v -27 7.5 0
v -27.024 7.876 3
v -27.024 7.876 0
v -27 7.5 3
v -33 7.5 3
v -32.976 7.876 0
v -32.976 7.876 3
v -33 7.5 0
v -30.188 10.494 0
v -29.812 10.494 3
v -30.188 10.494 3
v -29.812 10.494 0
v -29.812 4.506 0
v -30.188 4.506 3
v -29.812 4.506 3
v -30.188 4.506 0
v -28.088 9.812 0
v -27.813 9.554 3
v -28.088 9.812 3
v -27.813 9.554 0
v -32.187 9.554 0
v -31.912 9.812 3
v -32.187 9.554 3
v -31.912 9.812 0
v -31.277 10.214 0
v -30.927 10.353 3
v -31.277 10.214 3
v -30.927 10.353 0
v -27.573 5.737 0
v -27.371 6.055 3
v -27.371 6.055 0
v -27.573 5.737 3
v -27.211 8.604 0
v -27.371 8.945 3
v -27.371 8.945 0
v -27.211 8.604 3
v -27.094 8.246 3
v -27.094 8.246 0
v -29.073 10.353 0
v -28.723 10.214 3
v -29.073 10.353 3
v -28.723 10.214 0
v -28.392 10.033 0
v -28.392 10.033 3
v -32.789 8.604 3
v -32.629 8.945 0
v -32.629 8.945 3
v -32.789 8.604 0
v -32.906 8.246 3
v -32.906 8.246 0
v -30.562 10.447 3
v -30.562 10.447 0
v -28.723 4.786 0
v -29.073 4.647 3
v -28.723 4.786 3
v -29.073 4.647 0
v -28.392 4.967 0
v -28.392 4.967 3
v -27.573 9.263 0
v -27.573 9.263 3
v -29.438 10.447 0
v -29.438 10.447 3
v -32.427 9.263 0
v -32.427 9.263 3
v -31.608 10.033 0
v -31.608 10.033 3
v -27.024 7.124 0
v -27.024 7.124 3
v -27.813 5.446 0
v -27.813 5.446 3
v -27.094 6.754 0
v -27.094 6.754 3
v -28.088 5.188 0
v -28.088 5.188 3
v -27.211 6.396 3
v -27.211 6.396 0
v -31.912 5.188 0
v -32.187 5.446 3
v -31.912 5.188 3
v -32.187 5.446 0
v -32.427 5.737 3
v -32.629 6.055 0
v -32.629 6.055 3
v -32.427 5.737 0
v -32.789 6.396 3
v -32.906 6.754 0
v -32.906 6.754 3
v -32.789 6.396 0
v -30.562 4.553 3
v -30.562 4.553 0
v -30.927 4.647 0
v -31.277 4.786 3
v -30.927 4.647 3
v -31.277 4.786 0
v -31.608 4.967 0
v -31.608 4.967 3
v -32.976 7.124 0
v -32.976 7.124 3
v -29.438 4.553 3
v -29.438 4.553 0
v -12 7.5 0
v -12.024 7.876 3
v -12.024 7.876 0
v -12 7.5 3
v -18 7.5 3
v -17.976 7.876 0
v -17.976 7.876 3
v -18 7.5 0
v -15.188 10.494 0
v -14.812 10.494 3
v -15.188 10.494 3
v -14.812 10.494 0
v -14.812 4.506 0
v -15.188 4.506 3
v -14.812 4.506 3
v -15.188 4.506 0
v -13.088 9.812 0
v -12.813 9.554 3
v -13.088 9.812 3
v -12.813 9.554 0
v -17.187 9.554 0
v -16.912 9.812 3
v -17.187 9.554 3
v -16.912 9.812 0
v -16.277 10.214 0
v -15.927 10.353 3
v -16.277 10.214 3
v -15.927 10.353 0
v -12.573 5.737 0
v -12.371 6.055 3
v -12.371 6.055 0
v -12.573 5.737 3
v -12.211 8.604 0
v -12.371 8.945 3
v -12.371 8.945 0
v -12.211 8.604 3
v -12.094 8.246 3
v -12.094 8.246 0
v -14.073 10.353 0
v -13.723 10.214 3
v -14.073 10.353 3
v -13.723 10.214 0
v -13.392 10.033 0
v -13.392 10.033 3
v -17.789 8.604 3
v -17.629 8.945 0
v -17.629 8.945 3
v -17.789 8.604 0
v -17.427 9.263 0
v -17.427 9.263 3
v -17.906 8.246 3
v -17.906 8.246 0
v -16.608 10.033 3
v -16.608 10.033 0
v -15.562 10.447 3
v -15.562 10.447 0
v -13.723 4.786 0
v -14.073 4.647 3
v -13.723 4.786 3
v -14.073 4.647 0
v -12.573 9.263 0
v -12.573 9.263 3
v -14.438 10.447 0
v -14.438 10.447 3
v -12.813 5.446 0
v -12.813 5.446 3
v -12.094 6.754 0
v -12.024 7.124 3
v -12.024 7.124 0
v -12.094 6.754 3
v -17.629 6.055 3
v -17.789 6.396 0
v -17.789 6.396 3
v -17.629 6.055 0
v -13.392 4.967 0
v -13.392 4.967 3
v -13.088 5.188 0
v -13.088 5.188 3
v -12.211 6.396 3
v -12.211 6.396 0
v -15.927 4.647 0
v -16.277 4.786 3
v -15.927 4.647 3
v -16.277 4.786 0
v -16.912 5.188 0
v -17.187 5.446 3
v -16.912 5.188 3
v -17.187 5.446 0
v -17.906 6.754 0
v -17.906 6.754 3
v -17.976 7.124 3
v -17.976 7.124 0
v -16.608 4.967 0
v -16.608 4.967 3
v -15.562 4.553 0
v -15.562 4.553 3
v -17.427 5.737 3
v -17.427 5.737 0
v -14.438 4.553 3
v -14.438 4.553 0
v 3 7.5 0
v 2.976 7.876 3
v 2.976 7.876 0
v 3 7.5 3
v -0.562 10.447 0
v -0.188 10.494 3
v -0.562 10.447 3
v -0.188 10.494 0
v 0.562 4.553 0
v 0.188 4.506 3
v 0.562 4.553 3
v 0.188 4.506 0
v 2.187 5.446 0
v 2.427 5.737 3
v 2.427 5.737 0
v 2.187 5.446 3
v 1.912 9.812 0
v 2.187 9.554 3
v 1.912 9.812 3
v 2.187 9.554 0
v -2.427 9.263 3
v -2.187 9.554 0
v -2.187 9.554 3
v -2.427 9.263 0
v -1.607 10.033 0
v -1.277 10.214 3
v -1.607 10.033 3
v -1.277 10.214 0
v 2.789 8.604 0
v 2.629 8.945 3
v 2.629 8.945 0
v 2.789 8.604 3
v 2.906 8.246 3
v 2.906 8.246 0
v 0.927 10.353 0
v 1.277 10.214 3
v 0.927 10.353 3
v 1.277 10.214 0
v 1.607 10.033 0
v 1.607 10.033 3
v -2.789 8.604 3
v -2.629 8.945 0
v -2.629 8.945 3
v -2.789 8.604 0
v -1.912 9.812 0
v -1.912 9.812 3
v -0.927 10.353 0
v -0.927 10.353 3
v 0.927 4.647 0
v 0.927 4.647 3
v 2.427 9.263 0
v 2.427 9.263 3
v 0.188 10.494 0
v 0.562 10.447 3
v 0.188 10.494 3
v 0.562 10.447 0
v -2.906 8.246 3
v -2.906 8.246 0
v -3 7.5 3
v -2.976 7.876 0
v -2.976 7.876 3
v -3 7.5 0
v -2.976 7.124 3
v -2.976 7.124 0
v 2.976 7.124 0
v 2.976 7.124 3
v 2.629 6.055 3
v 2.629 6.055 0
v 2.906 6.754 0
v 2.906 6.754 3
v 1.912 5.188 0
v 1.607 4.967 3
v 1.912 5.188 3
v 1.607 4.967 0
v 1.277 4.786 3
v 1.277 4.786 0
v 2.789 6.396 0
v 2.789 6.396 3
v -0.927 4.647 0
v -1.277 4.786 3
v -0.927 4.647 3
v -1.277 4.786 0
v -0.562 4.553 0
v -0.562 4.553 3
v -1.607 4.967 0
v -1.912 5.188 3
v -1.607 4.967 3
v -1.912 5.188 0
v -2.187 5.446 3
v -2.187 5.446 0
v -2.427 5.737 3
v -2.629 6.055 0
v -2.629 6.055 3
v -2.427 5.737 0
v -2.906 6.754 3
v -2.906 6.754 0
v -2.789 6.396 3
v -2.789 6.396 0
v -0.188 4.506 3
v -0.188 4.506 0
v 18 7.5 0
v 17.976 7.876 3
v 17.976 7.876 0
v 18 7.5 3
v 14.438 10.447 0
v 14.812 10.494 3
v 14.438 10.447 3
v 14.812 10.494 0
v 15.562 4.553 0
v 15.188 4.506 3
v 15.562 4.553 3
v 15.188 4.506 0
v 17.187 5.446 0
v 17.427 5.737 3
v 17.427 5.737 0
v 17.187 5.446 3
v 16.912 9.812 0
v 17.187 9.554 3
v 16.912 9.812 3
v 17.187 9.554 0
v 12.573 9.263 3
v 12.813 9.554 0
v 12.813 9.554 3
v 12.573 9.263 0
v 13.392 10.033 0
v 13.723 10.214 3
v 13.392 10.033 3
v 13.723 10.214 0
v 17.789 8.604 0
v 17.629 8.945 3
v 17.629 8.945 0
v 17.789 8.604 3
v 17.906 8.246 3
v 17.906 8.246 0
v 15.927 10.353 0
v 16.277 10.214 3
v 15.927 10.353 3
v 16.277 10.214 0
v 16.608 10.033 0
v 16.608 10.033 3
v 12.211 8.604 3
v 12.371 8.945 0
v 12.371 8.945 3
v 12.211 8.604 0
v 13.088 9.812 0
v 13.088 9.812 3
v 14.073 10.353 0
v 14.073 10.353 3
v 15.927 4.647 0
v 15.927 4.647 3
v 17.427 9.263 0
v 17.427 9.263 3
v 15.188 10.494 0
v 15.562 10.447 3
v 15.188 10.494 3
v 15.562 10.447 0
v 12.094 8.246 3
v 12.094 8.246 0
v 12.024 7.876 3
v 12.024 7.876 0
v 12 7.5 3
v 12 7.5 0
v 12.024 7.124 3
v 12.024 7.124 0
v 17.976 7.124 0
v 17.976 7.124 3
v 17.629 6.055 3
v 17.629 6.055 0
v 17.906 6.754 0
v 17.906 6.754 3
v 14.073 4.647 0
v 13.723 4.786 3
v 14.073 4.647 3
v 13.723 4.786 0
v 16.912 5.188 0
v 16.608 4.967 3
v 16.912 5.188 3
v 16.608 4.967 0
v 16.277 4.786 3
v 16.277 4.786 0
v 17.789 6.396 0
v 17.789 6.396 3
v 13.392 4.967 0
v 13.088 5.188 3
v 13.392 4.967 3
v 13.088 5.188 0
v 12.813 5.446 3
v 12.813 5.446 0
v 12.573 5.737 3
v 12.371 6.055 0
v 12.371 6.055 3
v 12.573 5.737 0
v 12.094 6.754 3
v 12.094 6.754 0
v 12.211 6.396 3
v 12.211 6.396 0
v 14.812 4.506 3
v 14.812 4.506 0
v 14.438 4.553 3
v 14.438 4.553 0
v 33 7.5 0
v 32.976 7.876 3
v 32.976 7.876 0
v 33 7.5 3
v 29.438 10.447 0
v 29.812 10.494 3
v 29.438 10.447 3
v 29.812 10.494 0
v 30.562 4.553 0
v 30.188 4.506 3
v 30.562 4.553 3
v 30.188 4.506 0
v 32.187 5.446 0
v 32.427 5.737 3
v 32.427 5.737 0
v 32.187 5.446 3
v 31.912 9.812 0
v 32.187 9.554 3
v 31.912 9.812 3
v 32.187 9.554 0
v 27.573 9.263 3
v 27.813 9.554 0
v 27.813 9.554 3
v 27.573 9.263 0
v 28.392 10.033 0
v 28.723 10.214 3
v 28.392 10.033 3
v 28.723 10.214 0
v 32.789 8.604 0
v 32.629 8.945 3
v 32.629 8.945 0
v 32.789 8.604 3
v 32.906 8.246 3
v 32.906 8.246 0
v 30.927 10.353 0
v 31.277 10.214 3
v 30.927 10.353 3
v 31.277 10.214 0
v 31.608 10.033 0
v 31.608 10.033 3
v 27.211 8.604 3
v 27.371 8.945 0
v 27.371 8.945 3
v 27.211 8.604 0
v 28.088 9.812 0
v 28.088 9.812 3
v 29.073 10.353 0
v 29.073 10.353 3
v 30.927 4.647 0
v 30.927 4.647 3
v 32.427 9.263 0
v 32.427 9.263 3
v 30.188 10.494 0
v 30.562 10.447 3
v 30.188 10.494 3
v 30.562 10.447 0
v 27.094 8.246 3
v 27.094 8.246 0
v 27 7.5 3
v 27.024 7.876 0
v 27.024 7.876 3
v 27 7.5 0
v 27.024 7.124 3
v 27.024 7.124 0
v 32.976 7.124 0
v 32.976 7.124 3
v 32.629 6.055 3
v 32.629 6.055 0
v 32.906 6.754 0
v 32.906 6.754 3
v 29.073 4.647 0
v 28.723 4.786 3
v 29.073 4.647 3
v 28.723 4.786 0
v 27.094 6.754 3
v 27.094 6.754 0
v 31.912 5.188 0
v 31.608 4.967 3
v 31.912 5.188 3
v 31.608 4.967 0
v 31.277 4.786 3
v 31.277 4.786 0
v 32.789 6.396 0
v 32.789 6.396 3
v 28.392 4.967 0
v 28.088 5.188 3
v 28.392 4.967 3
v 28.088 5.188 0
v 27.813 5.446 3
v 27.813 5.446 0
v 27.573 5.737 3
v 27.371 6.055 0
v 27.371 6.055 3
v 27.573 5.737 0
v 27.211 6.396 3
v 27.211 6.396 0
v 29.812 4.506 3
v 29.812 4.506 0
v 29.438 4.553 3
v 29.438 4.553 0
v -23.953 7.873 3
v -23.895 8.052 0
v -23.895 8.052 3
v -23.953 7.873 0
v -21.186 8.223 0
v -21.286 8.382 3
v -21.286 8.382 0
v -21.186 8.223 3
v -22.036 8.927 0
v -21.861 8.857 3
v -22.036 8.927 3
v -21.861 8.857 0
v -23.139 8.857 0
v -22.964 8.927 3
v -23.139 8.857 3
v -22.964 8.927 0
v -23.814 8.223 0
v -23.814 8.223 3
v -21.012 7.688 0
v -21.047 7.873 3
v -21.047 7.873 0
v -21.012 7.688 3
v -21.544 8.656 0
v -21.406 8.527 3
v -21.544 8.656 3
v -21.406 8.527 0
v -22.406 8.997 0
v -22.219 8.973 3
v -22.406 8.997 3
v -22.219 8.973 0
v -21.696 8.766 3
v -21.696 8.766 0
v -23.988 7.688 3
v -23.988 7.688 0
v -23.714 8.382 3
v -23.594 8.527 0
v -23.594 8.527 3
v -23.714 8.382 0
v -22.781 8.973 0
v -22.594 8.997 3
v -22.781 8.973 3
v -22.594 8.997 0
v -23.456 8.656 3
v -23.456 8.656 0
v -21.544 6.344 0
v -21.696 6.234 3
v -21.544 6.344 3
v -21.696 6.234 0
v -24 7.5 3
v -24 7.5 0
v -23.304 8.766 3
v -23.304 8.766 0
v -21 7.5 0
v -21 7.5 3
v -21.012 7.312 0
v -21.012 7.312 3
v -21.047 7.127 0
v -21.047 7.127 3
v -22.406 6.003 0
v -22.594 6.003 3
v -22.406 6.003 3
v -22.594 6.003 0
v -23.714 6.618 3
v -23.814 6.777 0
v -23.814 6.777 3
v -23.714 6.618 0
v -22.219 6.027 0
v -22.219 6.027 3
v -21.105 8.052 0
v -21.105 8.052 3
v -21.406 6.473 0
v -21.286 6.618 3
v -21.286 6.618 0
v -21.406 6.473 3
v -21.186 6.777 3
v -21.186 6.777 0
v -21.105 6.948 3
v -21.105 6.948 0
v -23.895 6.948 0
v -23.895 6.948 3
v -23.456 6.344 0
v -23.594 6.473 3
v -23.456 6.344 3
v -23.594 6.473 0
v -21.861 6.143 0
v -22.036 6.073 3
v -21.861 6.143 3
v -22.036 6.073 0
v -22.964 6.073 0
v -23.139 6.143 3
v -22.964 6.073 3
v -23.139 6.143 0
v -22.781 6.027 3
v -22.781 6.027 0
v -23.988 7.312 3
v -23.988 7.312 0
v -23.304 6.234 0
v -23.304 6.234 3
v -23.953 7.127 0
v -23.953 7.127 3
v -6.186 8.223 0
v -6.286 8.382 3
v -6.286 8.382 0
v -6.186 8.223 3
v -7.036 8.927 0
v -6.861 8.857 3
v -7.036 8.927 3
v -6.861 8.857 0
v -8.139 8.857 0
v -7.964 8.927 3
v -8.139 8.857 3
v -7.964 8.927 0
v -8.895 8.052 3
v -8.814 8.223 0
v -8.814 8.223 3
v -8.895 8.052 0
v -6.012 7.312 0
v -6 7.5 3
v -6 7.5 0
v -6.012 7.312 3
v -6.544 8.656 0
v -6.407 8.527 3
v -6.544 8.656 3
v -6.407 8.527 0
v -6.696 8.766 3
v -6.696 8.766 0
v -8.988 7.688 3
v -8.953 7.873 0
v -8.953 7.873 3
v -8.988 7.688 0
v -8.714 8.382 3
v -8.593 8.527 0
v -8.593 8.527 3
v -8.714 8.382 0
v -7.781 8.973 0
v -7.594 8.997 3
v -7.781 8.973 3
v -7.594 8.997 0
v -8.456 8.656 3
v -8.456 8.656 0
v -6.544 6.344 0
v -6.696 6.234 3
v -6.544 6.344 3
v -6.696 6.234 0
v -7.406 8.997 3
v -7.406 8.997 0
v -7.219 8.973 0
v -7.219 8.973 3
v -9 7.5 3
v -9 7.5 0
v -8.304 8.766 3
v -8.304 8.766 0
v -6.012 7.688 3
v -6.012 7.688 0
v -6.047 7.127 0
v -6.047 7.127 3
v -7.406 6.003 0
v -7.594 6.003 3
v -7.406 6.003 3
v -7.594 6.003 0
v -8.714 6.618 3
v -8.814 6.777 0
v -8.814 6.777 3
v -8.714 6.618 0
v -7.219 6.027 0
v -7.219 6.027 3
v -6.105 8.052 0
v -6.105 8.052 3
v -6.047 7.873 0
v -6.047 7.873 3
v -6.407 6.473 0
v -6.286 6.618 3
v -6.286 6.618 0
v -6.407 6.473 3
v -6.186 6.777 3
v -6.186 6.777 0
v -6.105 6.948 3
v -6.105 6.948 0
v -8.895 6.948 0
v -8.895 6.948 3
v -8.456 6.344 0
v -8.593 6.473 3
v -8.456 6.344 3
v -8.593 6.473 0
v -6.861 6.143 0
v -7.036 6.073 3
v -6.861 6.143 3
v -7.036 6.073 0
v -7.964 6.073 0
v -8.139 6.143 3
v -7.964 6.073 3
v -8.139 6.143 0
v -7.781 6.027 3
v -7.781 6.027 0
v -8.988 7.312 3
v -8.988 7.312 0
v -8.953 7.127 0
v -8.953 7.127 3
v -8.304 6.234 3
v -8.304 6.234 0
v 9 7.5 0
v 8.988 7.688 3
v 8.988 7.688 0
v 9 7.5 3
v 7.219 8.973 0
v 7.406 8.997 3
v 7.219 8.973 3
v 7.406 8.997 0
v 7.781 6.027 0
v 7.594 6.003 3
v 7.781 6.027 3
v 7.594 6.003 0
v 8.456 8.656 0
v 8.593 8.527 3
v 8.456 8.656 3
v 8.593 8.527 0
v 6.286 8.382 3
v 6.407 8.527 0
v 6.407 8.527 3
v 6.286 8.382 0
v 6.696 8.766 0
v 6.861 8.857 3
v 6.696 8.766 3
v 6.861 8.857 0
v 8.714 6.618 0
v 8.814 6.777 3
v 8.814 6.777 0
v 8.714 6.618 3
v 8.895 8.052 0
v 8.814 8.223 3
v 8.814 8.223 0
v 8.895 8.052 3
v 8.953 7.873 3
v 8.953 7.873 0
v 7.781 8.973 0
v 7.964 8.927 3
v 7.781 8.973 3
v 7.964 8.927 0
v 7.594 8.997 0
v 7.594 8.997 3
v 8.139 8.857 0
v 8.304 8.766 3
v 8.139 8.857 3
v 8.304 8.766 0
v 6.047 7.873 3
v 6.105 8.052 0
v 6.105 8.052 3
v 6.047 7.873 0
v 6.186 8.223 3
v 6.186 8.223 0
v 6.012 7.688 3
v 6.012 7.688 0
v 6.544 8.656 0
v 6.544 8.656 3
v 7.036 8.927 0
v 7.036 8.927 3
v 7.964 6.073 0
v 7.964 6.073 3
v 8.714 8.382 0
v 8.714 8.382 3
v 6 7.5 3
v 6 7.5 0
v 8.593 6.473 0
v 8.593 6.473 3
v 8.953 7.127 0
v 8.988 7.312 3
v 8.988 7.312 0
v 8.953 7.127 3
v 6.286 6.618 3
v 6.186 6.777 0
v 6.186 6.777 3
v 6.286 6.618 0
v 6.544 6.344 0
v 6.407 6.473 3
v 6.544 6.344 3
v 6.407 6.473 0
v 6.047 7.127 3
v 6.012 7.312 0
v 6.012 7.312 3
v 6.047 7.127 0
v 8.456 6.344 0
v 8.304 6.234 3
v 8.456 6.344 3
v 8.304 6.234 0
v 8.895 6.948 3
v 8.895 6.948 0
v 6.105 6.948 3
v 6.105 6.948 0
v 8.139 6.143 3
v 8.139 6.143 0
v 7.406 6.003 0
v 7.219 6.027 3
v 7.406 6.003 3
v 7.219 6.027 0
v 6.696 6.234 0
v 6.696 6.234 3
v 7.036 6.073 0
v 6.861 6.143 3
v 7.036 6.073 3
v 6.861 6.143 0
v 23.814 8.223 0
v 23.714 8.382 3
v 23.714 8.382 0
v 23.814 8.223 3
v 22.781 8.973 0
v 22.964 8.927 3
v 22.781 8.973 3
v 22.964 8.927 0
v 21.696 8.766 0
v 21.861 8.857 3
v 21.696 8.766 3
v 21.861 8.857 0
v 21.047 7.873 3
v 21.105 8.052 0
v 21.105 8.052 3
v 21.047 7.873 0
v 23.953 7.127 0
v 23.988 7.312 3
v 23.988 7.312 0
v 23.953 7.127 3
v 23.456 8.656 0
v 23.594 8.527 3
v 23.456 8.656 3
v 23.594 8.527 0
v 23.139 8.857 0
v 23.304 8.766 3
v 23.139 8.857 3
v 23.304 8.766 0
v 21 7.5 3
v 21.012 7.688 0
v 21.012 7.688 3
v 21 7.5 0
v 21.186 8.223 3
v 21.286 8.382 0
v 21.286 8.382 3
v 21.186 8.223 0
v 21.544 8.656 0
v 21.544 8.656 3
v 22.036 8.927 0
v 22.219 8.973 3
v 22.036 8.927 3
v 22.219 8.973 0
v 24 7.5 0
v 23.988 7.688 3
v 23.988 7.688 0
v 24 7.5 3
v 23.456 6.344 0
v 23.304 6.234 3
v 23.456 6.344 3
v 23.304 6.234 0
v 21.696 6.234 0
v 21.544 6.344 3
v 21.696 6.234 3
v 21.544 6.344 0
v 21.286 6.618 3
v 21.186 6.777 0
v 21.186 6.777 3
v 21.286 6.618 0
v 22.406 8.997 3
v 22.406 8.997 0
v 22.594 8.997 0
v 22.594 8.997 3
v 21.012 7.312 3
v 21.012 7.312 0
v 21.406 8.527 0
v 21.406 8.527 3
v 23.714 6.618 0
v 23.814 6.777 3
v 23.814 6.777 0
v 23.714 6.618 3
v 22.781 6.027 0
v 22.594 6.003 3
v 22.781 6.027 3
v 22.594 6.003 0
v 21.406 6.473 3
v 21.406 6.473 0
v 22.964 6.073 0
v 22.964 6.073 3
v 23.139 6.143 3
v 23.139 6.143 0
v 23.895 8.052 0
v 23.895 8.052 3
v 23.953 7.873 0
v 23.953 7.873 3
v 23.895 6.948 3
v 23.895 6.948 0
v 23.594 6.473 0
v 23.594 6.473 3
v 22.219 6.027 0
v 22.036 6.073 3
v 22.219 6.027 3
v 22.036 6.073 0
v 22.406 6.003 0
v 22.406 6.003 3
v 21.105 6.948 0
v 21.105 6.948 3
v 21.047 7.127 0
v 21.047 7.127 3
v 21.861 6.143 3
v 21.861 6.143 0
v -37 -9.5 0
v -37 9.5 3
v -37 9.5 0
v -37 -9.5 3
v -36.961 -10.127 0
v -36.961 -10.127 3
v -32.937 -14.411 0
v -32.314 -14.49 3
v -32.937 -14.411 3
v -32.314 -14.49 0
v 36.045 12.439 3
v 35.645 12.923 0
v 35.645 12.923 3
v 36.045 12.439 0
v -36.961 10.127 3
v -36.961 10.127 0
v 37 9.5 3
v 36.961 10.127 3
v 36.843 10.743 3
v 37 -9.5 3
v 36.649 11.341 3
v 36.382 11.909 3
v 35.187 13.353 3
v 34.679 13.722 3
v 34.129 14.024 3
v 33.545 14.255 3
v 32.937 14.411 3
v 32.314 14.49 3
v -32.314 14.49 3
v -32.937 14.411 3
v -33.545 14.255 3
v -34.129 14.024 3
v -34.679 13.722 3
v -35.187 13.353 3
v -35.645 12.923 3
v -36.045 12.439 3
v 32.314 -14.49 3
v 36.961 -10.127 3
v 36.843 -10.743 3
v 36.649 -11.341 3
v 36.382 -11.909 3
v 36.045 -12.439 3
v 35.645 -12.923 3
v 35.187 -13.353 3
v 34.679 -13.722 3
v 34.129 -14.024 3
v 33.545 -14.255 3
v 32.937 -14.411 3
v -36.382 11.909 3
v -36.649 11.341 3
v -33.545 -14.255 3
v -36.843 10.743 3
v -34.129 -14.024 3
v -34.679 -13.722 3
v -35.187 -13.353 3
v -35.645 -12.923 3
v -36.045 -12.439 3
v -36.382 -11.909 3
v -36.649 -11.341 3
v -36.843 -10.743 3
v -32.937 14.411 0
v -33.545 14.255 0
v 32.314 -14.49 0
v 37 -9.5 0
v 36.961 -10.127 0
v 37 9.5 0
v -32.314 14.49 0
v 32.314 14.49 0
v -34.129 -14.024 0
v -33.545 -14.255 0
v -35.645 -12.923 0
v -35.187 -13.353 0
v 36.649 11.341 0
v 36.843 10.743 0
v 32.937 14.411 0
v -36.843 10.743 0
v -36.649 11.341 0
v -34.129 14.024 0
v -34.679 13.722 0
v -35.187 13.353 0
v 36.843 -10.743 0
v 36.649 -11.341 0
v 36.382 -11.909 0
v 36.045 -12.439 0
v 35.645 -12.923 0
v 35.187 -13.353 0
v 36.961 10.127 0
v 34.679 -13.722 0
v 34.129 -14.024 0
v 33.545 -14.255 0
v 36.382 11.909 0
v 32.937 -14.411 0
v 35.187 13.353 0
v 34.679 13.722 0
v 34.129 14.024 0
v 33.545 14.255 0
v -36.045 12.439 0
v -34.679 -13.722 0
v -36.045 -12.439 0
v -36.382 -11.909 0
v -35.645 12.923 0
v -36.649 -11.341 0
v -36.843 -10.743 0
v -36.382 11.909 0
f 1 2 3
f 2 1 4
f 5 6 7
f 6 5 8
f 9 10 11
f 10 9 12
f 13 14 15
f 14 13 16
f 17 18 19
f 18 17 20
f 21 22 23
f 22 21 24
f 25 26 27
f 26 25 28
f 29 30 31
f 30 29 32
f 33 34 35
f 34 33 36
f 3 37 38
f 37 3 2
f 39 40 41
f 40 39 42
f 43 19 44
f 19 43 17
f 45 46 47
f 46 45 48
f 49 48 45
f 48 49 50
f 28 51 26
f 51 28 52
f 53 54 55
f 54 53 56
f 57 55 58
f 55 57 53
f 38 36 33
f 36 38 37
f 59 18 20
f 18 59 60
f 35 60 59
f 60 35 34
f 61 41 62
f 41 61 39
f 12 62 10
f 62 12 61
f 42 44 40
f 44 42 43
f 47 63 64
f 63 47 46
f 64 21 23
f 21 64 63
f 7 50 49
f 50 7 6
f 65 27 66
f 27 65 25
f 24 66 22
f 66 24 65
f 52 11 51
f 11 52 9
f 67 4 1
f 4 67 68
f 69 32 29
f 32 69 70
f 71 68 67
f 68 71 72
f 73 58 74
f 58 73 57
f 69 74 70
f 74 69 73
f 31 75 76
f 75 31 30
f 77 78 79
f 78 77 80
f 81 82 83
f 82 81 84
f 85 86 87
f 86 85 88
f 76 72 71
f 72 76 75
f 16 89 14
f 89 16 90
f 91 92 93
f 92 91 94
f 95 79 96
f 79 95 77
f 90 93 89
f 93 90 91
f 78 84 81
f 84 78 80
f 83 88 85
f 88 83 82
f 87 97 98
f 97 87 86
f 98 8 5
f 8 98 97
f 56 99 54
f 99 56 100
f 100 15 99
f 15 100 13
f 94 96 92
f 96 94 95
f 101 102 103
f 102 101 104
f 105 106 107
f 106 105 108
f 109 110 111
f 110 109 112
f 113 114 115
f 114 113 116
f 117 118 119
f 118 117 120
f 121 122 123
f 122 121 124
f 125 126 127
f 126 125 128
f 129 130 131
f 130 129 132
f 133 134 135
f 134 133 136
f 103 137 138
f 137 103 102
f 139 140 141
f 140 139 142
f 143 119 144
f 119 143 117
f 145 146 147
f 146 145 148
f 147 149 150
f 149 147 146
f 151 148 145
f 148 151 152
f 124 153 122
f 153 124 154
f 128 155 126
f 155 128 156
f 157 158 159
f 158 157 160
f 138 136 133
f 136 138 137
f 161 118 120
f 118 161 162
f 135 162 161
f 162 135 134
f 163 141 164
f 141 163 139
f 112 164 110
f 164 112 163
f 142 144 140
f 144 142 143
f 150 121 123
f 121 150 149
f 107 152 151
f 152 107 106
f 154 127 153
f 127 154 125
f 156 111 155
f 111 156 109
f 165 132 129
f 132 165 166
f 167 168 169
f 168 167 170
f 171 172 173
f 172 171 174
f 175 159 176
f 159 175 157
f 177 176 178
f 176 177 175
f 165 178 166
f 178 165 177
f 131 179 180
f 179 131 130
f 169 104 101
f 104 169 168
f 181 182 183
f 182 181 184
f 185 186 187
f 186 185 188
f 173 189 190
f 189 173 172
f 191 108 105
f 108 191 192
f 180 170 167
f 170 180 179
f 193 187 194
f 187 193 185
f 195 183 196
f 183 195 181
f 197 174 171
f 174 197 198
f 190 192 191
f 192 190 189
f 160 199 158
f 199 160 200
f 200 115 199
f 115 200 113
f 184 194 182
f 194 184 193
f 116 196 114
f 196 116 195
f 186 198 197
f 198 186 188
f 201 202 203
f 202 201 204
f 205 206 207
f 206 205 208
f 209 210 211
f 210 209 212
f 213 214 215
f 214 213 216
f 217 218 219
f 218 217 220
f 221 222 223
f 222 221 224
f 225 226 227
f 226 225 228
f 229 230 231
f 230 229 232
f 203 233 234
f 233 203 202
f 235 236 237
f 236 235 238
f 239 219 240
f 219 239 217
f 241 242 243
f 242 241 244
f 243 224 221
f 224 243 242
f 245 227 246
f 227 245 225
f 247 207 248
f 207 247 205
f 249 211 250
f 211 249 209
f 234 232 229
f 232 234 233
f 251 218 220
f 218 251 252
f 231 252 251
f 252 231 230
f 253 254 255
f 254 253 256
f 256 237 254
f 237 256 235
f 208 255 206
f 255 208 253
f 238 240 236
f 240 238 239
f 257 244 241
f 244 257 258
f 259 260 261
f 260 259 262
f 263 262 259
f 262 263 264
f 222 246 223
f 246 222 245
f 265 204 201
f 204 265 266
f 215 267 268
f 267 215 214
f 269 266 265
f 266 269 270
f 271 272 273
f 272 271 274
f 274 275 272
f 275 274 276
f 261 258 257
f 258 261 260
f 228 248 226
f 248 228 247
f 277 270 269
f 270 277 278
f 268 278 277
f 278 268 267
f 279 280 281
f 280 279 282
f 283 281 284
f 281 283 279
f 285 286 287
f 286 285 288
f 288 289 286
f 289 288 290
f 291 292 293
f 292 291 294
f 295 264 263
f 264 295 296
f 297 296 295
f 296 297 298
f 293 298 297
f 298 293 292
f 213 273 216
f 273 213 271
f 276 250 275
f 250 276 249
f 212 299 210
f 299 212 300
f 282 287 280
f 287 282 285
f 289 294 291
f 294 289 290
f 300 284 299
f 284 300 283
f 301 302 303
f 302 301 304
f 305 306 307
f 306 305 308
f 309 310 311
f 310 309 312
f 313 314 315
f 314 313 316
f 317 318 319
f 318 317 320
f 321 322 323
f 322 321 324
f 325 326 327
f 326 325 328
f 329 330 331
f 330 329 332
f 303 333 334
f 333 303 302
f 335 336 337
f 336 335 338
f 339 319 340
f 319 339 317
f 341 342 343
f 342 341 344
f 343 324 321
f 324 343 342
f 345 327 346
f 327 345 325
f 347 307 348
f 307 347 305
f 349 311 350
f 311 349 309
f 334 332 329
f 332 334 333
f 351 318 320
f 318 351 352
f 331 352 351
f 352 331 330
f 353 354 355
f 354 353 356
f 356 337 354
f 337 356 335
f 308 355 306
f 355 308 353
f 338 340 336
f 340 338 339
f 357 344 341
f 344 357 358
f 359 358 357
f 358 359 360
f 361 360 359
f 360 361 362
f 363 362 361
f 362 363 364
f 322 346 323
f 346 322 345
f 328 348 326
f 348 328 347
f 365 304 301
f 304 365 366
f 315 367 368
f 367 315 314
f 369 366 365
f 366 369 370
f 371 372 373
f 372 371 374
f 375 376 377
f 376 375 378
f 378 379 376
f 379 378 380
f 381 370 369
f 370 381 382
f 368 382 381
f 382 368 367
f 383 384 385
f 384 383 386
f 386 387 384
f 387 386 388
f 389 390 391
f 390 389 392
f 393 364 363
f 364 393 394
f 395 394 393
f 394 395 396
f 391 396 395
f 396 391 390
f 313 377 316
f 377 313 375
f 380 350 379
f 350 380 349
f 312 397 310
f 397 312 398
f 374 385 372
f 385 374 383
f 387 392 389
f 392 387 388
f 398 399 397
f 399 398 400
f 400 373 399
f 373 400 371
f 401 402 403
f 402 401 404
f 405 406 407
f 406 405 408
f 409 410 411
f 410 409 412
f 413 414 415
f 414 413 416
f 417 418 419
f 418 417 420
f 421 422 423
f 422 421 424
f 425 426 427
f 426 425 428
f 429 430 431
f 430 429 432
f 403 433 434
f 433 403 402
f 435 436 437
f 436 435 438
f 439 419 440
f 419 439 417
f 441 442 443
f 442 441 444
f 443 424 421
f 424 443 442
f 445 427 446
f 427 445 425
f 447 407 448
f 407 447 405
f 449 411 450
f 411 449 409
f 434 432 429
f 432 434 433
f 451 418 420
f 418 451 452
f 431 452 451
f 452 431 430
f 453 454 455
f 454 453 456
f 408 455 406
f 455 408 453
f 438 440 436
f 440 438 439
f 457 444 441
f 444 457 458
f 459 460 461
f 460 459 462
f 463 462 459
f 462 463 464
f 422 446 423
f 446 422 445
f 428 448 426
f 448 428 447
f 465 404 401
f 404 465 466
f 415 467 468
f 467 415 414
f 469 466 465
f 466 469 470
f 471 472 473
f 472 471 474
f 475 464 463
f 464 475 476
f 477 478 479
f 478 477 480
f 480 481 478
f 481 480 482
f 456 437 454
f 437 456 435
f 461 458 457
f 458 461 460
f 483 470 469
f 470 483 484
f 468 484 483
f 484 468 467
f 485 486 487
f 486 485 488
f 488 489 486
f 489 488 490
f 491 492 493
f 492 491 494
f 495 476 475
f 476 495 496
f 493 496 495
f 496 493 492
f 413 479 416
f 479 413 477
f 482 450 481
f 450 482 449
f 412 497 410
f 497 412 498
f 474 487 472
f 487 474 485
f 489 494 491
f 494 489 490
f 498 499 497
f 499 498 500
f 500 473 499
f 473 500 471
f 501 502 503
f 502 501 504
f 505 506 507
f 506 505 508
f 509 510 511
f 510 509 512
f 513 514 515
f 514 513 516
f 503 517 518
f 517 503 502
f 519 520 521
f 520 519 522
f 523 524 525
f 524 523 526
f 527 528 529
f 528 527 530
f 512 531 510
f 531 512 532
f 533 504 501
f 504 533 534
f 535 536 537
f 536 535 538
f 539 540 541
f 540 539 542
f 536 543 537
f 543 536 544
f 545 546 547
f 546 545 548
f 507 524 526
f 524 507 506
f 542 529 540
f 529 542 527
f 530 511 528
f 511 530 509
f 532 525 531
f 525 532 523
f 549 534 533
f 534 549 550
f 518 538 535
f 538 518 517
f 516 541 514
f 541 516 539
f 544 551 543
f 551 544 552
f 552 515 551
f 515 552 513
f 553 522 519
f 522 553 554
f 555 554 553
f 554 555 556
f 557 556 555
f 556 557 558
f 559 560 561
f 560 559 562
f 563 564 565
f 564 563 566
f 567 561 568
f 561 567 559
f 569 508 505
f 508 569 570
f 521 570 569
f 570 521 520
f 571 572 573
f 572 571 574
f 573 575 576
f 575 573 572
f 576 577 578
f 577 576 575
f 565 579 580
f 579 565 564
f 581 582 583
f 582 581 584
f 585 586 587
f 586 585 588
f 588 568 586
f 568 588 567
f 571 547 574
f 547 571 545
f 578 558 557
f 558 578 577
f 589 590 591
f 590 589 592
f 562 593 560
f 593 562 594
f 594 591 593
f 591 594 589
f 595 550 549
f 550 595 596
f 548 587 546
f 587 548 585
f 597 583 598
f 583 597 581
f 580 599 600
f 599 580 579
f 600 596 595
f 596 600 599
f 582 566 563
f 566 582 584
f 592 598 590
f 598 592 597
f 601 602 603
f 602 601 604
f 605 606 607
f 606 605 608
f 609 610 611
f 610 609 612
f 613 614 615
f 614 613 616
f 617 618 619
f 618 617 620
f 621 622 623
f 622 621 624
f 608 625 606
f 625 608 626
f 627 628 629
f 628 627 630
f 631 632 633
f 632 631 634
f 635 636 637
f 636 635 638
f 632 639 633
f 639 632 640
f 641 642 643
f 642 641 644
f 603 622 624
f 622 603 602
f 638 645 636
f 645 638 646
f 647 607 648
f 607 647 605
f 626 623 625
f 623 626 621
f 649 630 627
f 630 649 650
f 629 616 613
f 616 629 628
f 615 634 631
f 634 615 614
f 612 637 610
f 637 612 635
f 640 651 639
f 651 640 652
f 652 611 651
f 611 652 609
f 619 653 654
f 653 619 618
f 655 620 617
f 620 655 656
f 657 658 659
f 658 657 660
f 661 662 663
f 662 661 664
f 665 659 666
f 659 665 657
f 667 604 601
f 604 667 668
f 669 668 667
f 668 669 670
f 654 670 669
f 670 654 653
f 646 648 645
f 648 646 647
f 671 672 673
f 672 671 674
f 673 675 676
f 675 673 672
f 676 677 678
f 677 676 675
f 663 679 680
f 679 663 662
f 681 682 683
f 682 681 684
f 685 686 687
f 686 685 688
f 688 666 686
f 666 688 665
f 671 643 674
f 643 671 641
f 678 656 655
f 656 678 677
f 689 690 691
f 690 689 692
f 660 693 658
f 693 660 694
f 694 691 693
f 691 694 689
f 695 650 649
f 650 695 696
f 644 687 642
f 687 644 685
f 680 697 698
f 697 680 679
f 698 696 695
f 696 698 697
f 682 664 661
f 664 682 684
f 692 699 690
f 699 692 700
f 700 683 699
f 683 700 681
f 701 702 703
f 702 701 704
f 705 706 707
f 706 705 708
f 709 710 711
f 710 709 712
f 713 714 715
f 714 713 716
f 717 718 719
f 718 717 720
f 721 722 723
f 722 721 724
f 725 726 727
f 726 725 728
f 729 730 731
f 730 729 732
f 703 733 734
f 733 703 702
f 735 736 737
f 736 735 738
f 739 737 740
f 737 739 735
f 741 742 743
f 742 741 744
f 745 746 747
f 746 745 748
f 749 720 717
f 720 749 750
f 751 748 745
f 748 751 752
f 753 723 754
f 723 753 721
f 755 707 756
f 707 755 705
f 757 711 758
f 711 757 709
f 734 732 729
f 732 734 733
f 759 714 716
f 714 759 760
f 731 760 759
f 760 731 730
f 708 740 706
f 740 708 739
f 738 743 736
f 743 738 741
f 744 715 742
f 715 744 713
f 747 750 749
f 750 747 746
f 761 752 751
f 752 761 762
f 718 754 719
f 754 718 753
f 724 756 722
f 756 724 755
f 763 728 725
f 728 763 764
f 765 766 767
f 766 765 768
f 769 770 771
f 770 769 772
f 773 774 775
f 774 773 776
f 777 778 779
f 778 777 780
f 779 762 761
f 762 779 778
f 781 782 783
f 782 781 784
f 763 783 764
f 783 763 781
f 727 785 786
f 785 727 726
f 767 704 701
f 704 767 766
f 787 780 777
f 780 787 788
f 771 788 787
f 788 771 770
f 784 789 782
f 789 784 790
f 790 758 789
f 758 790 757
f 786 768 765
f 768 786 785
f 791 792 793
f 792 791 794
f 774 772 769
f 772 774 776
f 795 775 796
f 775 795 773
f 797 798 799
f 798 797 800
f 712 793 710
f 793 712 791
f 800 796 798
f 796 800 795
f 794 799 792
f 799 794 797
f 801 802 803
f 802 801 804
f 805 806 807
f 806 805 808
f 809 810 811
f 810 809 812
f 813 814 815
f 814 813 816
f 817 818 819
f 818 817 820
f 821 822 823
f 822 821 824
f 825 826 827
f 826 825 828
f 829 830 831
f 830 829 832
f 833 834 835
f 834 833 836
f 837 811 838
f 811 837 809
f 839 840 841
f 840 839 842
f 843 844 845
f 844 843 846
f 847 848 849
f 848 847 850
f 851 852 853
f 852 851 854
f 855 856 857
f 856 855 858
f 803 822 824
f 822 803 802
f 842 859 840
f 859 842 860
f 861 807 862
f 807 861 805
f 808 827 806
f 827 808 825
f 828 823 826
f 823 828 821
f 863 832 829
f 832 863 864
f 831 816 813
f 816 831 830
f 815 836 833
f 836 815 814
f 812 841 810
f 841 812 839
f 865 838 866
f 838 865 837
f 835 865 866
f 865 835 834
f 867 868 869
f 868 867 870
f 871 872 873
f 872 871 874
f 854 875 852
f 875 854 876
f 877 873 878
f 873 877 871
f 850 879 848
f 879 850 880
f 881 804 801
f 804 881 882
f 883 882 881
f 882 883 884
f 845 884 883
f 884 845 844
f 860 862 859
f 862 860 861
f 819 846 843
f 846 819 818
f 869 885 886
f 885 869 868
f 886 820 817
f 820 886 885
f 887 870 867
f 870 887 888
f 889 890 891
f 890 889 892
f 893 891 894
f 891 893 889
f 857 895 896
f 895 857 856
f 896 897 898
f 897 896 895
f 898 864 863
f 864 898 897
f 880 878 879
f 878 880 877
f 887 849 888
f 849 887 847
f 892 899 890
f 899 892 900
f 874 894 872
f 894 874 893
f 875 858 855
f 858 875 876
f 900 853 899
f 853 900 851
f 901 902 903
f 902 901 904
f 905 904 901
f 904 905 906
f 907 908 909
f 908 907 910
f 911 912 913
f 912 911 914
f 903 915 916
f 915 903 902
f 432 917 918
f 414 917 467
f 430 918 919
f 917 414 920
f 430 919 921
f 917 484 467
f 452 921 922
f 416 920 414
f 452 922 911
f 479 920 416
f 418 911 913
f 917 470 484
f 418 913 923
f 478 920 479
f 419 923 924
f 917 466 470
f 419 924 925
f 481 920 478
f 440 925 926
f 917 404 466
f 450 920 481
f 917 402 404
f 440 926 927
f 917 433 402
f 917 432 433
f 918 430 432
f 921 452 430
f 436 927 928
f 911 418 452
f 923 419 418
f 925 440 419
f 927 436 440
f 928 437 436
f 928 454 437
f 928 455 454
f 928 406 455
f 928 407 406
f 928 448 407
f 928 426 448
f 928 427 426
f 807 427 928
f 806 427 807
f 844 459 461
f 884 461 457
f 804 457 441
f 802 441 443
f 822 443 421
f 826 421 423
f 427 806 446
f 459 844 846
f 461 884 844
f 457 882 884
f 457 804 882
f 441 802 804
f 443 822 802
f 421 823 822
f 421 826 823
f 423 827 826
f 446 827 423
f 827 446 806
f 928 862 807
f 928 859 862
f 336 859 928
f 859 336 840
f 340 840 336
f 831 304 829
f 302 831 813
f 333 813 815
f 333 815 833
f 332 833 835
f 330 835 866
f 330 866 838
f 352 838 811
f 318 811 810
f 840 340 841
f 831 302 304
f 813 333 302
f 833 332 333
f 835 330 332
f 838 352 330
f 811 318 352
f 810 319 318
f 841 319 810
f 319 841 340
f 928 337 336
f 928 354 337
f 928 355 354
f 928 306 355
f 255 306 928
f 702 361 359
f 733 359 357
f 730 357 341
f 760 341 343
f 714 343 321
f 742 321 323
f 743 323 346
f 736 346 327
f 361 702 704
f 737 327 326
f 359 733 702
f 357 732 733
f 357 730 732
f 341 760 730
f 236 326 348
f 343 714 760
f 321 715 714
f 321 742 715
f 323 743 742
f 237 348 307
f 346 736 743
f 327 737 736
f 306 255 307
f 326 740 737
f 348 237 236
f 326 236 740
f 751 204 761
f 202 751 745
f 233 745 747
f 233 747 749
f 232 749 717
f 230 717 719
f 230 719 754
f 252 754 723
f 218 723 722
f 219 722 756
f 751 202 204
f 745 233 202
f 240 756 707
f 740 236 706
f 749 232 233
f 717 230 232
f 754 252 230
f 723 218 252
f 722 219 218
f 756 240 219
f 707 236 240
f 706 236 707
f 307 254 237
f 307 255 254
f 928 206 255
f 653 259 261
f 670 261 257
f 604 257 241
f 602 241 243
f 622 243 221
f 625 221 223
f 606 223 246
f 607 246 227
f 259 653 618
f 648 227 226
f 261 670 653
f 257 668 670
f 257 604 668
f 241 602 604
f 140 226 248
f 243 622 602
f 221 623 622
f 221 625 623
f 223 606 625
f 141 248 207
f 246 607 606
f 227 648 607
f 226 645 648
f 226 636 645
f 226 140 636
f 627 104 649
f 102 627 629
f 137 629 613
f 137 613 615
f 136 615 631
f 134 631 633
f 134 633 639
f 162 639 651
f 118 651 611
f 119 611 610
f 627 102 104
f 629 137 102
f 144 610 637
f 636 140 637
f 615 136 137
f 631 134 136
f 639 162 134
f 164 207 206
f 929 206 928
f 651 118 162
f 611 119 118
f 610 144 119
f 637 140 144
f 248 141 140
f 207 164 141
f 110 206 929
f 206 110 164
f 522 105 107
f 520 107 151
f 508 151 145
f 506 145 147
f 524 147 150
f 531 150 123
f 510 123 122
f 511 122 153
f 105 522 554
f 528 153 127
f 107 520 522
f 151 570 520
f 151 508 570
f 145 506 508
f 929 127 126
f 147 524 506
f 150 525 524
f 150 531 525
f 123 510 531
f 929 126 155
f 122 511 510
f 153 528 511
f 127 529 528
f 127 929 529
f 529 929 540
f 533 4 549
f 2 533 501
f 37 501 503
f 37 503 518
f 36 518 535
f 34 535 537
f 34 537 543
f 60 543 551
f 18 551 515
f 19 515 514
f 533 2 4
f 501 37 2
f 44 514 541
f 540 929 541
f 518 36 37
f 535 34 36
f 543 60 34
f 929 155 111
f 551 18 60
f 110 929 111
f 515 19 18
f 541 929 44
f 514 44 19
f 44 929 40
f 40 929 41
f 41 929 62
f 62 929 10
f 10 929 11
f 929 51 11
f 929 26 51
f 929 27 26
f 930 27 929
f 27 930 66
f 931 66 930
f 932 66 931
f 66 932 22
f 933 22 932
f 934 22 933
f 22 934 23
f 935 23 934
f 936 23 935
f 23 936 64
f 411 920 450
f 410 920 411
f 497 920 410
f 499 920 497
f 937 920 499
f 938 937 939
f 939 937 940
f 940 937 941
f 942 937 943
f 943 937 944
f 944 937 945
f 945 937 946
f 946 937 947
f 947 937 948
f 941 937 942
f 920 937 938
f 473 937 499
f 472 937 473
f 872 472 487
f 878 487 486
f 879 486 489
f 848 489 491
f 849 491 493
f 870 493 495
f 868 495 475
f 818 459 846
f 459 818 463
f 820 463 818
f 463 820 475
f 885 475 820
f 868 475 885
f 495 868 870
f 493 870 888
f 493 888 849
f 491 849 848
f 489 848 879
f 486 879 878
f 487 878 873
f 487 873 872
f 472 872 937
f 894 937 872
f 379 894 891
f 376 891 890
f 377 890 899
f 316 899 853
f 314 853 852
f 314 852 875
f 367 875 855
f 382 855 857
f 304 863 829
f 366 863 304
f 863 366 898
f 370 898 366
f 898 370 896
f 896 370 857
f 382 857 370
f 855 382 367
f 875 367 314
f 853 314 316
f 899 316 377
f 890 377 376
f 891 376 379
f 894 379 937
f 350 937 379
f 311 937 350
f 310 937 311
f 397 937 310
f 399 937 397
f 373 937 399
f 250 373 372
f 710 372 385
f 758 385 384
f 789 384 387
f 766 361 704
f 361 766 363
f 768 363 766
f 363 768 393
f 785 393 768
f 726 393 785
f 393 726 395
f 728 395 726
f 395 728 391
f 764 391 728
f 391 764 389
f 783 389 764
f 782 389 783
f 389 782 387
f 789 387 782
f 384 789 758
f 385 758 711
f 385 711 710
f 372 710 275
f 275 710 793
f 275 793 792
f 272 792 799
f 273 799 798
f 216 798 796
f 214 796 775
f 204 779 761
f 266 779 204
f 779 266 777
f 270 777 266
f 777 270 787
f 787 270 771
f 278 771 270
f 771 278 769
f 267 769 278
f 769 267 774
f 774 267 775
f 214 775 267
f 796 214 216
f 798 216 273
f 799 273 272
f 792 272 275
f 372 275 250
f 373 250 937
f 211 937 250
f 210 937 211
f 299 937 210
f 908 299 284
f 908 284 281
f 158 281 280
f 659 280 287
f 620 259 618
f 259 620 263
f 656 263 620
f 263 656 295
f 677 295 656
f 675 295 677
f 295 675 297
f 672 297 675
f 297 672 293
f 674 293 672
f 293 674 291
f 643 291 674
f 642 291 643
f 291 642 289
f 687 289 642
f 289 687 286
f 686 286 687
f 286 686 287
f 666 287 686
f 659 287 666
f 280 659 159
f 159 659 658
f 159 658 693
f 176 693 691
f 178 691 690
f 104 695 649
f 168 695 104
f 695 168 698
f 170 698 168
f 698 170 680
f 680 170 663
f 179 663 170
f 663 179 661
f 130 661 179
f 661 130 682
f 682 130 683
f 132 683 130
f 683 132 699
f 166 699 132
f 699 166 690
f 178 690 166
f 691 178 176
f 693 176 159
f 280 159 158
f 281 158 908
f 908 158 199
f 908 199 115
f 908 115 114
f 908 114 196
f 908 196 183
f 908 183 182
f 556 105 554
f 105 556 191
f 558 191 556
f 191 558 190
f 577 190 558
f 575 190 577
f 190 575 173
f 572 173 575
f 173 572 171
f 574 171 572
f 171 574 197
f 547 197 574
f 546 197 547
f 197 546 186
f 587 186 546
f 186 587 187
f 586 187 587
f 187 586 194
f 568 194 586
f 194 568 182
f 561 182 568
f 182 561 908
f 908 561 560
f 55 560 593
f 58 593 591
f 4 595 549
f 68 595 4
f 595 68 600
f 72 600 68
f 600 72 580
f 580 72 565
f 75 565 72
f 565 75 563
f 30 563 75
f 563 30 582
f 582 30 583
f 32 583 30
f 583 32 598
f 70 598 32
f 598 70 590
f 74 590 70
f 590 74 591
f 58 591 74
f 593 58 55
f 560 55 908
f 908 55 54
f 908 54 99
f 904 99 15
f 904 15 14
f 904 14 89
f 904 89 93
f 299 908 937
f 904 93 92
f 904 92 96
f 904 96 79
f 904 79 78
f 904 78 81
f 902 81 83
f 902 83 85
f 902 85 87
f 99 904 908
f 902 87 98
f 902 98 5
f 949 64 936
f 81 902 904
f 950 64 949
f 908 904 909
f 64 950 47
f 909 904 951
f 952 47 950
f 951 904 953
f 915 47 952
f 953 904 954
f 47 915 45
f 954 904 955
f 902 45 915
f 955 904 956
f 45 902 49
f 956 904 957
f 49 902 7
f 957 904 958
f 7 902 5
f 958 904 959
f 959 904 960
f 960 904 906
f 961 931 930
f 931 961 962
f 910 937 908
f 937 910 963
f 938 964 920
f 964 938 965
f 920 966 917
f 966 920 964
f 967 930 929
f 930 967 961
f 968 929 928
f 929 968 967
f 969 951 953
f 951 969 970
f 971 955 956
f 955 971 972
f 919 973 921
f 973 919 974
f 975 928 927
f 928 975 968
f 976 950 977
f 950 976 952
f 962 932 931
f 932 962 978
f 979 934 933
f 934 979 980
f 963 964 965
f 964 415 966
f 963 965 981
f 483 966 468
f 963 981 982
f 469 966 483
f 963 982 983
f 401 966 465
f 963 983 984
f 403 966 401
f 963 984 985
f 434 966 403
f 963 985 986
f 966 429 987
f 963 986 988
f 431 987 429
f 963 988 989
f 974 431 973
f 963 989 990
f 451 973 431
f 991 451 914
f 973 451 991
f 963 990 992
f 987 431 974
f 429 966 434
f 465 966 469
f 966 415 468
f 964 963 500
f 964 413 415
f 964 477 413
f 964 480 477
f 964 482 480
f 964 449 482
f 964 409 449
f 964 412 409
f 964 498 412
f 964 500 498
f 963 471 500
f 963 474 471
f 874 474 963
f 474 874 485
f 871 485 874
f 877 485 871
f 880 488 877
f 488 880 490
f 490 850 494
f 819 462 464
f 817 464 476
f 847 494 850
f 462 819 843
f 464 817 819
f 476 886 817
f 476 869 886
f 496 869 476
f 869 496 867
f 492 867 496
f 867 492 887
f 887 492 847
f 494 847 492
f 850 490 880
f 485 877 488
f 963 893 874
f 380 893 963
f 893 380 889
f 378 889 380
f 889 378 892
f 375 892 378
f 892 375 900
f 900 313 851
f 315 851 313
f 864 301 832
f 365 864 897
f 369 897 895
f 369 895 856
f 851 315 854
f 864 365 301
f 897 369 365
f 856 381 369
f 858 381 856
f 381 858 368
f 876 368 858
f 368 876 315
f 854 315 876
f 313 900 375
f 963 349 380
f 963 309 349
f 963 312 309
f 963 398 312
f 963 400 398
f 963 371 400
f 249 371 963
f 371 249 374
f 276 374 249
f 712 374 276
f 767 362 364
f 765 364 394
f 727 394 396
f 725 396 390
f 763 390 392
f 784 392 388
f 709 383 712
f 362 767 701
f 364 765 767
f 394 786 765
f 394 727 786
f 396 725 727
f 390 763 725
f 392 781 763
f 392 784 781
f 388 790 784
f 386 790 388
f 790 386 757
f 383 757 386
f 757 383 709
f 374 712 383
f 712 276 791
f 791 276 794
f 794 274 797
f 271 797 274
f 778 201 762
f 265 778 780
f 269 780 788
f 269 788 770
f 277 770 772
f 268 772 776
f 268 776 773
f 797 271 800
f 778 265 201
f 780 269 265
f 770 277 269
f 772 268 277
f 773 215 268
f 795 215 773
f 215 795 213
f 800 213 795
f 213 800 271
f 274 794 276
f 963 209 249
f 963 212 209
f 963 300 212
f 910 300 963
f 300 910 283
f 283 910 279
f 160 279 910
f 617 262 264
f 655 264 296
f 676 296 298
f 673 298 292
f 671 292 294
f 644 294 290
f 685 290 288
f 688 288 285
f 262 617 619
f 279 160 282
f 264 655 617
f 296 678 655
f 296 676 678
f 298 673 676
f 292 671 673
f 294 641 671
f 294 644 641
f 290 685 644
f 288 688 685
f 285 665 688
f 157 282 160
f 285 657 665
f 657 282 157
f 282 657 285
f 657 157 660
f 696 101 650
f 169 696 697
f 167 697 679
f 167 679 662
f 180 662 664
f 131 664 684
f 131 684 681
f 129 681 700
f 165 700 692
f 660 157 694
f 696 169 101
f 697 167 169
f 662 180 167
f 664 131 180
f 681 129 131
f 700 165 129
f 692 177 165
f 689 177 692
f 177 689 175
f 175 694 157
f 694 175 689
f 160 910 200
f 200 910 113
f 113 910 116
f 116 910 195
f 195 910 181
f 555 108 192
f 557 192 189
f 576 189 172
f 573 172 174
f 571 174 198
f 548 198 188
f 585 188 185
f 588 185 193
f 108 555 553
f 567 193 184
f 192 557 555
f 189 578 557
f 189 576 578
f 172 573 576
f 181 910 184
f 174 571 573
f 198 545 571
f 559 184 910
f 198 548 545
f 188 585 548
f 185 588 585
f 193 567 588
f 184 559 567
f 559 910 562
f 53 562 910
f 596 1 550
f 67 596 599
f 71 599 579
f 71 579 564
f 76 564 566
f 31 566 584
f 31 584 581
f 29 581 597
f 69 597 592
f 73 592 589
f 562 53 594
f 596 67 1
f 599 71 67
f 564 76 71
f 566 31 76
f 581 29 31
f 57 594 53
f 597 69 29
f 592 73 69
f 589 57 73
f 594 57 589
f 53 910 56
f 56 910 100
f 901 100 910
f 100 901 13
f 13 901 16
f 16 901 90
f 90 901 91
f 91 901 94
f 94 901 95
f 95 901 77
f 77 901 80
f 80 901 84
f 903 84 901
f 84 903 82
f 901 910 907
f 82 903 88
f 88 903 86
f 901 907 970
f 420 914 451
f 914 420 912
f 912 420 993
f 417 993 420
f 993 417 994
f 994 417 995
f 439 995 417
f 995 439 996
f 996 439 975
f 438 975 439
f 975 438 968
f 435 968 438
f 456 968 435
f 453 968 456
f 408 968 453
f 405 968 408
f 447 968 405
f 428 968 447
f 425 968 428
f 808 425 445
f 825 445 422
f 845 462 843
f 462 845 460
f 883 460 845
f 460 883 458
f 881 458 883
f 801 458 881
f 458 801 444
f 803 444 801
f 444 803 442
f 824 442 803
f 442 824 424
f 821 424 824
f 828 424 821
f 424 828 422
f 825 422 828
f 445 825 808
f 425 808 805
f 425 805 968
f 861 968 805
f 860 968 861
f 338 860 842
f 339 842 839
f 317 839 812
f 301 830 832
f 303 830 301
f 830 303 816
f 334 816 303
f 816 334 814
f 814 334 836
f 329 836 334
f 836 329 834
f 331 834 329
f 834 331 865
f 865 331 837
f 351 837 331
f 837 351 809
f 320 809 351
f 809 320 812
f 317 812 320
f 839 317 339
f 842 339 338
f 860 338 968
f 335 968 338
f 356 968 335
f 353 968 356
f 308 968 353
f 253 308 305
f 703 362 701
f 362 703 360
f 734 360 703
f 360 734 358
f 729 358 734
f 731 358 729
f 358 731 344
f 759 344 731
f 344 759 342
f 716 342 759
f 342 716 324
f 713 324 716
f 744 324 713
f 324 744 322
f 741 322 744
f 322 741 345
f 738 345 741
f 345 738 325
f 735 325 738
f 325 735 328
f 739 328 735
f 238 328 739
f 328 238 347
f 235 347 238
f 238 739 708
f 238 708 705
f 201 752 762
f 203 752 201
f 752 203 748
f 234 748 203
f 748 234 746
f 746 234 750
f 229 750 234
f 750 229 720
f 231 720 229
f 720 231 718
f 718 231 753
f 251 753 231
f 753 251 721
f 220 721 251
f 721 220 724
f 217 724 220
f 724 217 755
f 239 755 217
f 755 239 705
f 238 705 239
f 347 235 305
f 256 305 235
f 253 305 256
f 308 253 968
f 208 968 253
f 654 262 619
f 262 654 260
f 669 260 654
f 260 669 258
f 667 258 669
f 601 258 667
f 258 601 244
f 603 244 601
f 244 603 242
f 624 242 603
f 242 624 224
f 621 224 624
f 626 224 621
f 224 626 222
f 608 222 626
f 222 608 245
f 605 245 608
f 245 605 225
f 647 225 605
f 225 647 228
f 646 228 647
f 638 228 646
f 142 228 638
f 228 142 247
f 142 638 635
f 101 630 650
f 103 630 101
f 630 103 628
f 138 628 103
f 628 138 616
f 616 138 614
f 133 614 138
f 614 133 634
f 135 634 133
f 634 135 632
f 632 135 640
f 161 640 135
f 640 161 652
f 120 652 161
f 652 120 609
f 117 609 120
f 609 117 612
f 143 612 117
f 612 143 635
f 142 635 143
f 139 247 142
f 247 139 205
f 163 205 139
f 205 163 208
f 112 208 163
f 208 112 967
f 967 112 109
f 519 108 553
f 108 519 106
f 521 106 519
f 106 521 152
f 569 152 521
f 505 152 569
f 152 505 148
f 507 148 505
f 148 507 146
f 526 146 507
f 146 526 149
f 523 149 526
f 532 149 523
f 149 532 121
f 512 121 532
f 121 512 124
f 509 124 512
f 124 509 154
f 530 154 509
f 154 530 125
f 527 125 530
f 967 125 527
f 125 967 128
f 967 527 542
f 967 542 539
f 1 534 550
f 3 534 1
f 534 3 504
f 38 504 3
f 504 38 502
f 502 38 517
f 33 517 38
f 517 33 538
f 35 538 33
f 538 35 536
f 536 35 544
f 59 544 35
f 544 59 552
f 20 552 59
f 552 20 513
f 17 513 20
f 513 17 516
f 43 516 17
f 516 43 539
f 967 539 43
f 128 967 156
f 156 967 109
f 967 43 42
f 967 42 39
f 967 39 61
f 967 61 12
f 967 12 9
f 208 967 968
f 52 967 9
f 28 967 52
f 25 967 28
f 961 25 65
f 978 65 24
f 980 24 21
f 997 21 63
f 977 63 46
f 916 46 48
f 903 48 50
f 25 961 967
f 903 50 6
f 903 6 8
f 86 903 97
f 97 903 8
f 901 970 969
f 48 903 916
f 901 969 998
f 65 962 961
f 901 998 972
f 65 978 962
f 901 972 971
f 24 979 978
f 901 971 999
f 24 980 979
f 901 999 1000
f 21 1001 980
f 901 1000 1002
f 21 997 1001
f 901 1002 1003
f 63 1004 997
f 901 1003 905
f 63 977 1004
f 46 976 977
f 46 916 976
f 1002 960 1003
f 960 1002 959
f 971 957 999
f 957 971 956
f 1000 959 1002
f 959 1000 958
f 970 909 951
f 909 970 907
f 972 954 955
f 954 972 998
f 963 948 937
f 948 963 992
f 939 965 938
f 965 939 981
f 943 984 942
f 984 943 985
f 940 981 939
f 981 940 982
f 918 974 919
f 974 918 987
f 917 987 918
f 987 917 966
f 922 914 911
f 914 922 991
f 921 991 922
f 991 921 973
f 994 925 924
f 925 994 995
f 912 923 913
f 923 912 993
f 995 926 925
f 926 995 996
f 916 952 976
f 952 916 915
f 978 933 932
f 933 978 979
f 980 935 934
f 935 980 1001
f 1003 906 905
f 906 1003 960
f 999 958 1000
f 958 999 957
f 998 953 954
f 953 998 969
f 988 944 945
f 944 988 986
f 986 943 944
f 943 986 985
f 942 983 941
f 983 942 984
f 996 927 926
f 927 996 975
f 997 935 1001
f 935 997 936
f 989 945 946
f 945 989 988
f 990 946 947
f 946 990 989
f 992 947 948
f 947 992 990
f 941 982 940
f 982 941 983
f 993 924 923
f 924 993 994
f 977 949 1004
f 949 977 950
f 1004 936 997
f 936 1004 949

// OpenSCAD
$fn = 50;


difference() {
	union() {
		*color(alpha = 1.0000000000, c = "gray") {
			translate(v = [0, 7, 0]) {
				linear_extrude(height = 1) {
					text(font = "Arial:style=Bold", halign = "center", size = 4.5000000000, text = "COMMENT plate main", valign = "center");
				}
			}
		}
		hull() {
			translate(v = [-32.0000000000, 9.5000000000, 0]) {
				cylinder(h = 3, r = 5);
			}
			translate(v = [32.0000000000, 9.5000000000, 0]) {
				cylinder(h = 3, r = 5);
			}
			translate(v = [-32.0000000000, -9.5000000000, 0]) {
				cylinder(h = 3, r = 5);
			}
			translate(v = [32.0000000000, -9.5000000000, 0]) {
				cylinder(h = 3, r = 5);
			}
		}
	}
	union() {
		*color(alpha = 1.0000000000, c = "gray") {
			translate(v = [0, 7, 0]) {
				linear_extrude(height = 1) {
					text(font = "Arial:style=Bold", halign = "center", size = 4.5000000000, text = "COMMENT holes main", valign = "center");
				}
			}
		}
		translate(v = [-30.0000000000, 7.5000000000, -100.0000000000]) {
			cylinder(h = 200, r = 3.0000000000);
		}
		translate(v = [-15.0000000000, 7.5000000000, -100.0000000000]) {
			cylinder(h = 200, r = 3.0000000000);
		}
		translate(v = [0.0000000000, 7.5000000000, -100.0000000000]) {
			cylinder(h = 200, r = 3.0000000000);
		}
		translate(v = [15.0000000000, 7.5000000000, -100.0000000000]) {
			cylinder(h = 200, r = 3.0000000000);
		}
		translate(v = [30.0000000000, 7.5000000000, -100.0000000000]) {
			cylinder(h = 200, r = 3.0000000000);
		}
		translate(v = [-30.0000000000, 7.5000000000, -100.0000000000]) {
			cylinder(h = 200, r = 1.5000000000);
		}
		translate(v = [-22.5000000000, 7.5000000000, -100.0000000000]) {
			cylinder(h = 200, r = 1.5000000000);
		}
		translate(v = [-15.0000000000, 7.5000000000, -100.0000000000]) {
			cylinder(h = 200, r = 1.5000000000);
		}
		translate(v = [-7.5000000000, 7.5000000000, -100.0000000000]) {
			cylinder(h = 200, r = 1.5000000000);
		}
		translate(v = [0.0000000000, 7.5000000000, -100.0000000000]) {
			cylinder(h = 200, r = 1.5000000000);
		}
		translate(v = [7.5000000000, 7.5000000000, -100.0000000000]) {
			cylinder(h = 200, r = 1.5000000000);
		}
		translate(v = [15.0000000000, 7.5000000000, -100.0000000000]) {
			cylinder(h = 200, r = 1.5000000000);
		}
		translate(v = [22.5000000000, 7.5000000000, -100.0000000000]) {
			cylinder(h = 200, r = 1.5000000000);
		}
		translate(v = [30.0000000000, 7.5000000000, -100.0000000000]) {
			cylinder(h = 200, r = 1.5000000000);
		}
		translate(v = [-30.0000000000, 7.5000000000, -100.0000000000]) {
			cylinder(h = 200, r = 1.5000000000);
		}
		translate(v = [-22.5000000000, 7.5000000000, -100.0000000000]) {
			cylinder(h = 200, r = 1.5000000000);
		}
		translate(v = [-15.0000000000, 7.5000000000, -100.0000000000]) {
			cylinder(h = 200, r = 1.5000000000);
		}
		translate(v = [-7.5000000000, 7.5000000000, -100.0000000000]) {
			cylinder(h = 200, r = 1.5000000000);
		}
		translate(v = [0.0000000000, 7.5000000000, -100.0000000000]) {
			cylinder(h = 200, r = 1.5000000000);
		}
		translate(v = [7.5000000000, 7.5000000000, -100.0000000000]) {
			cylinder(h = 200, r = 1.5000000000);
		}
		translate(v = [15.0000000000, 7.5000000000, -100.0000000000]) {
			cylinder(h = 200, r = 1.5000000000);
		}
		translate(v = [22.5000000000, 7.5000000000, -100.0000000000]) {
			cylinder(h = 200, r = 1.5000000000);
		}
		translate(v = [30.0000000000, 7.5000000000, -100.0000000000]) {
			cylinder(h = 200, r = 1.5000000000);
		}
		translate(v = [-30.0000000000, 7.5000000000, -100.0000000000]) {
			cylinder(h = 200, r = 1.5000000000);
		}
		translate(v = [-22.5000000000, 7.5000000000, -100.0000000000]) {
			cylinder(h = 200, r = 1.5000000000);
		}
		translate(v = [-15.0000000000, 7.5000000000, -100.0000000000]) {
			cylinder(h = 200, r = 1.5000000000);
		}
		translate(v = [-7.5000000000, 7.5000000000, -100.0000000000]) {
			cylinder(h = 200, r = 1.5000000000);
		}
		translate(v = [0.0000000000, 7.5000000000, -100.0000000000]) {
			cylinder(h = 200, r = 1.5000000000);
		}
		translate(v = [7.5000000000, 7.5000000000, -100.0000000000]) {
			cylinder(h = 200, r = 1.5000000000);
		}
		translate(v = [15.0000000000, 7.5000000000, -100.0000000000]) {
			cylinder(h = 200, r = 1.5000000000);
		}
		translate(v = [22.5000000000, 7.5000000000, -100.0000000000]) {
			cylinder(h = 200, r = 1.5000000000);
		}
		translate(v = [30.0000000000, 7.5000000000, -100.0000000000]) {
			cylinder(h = 200, r = 1.5000000000);
		}
	}
}
